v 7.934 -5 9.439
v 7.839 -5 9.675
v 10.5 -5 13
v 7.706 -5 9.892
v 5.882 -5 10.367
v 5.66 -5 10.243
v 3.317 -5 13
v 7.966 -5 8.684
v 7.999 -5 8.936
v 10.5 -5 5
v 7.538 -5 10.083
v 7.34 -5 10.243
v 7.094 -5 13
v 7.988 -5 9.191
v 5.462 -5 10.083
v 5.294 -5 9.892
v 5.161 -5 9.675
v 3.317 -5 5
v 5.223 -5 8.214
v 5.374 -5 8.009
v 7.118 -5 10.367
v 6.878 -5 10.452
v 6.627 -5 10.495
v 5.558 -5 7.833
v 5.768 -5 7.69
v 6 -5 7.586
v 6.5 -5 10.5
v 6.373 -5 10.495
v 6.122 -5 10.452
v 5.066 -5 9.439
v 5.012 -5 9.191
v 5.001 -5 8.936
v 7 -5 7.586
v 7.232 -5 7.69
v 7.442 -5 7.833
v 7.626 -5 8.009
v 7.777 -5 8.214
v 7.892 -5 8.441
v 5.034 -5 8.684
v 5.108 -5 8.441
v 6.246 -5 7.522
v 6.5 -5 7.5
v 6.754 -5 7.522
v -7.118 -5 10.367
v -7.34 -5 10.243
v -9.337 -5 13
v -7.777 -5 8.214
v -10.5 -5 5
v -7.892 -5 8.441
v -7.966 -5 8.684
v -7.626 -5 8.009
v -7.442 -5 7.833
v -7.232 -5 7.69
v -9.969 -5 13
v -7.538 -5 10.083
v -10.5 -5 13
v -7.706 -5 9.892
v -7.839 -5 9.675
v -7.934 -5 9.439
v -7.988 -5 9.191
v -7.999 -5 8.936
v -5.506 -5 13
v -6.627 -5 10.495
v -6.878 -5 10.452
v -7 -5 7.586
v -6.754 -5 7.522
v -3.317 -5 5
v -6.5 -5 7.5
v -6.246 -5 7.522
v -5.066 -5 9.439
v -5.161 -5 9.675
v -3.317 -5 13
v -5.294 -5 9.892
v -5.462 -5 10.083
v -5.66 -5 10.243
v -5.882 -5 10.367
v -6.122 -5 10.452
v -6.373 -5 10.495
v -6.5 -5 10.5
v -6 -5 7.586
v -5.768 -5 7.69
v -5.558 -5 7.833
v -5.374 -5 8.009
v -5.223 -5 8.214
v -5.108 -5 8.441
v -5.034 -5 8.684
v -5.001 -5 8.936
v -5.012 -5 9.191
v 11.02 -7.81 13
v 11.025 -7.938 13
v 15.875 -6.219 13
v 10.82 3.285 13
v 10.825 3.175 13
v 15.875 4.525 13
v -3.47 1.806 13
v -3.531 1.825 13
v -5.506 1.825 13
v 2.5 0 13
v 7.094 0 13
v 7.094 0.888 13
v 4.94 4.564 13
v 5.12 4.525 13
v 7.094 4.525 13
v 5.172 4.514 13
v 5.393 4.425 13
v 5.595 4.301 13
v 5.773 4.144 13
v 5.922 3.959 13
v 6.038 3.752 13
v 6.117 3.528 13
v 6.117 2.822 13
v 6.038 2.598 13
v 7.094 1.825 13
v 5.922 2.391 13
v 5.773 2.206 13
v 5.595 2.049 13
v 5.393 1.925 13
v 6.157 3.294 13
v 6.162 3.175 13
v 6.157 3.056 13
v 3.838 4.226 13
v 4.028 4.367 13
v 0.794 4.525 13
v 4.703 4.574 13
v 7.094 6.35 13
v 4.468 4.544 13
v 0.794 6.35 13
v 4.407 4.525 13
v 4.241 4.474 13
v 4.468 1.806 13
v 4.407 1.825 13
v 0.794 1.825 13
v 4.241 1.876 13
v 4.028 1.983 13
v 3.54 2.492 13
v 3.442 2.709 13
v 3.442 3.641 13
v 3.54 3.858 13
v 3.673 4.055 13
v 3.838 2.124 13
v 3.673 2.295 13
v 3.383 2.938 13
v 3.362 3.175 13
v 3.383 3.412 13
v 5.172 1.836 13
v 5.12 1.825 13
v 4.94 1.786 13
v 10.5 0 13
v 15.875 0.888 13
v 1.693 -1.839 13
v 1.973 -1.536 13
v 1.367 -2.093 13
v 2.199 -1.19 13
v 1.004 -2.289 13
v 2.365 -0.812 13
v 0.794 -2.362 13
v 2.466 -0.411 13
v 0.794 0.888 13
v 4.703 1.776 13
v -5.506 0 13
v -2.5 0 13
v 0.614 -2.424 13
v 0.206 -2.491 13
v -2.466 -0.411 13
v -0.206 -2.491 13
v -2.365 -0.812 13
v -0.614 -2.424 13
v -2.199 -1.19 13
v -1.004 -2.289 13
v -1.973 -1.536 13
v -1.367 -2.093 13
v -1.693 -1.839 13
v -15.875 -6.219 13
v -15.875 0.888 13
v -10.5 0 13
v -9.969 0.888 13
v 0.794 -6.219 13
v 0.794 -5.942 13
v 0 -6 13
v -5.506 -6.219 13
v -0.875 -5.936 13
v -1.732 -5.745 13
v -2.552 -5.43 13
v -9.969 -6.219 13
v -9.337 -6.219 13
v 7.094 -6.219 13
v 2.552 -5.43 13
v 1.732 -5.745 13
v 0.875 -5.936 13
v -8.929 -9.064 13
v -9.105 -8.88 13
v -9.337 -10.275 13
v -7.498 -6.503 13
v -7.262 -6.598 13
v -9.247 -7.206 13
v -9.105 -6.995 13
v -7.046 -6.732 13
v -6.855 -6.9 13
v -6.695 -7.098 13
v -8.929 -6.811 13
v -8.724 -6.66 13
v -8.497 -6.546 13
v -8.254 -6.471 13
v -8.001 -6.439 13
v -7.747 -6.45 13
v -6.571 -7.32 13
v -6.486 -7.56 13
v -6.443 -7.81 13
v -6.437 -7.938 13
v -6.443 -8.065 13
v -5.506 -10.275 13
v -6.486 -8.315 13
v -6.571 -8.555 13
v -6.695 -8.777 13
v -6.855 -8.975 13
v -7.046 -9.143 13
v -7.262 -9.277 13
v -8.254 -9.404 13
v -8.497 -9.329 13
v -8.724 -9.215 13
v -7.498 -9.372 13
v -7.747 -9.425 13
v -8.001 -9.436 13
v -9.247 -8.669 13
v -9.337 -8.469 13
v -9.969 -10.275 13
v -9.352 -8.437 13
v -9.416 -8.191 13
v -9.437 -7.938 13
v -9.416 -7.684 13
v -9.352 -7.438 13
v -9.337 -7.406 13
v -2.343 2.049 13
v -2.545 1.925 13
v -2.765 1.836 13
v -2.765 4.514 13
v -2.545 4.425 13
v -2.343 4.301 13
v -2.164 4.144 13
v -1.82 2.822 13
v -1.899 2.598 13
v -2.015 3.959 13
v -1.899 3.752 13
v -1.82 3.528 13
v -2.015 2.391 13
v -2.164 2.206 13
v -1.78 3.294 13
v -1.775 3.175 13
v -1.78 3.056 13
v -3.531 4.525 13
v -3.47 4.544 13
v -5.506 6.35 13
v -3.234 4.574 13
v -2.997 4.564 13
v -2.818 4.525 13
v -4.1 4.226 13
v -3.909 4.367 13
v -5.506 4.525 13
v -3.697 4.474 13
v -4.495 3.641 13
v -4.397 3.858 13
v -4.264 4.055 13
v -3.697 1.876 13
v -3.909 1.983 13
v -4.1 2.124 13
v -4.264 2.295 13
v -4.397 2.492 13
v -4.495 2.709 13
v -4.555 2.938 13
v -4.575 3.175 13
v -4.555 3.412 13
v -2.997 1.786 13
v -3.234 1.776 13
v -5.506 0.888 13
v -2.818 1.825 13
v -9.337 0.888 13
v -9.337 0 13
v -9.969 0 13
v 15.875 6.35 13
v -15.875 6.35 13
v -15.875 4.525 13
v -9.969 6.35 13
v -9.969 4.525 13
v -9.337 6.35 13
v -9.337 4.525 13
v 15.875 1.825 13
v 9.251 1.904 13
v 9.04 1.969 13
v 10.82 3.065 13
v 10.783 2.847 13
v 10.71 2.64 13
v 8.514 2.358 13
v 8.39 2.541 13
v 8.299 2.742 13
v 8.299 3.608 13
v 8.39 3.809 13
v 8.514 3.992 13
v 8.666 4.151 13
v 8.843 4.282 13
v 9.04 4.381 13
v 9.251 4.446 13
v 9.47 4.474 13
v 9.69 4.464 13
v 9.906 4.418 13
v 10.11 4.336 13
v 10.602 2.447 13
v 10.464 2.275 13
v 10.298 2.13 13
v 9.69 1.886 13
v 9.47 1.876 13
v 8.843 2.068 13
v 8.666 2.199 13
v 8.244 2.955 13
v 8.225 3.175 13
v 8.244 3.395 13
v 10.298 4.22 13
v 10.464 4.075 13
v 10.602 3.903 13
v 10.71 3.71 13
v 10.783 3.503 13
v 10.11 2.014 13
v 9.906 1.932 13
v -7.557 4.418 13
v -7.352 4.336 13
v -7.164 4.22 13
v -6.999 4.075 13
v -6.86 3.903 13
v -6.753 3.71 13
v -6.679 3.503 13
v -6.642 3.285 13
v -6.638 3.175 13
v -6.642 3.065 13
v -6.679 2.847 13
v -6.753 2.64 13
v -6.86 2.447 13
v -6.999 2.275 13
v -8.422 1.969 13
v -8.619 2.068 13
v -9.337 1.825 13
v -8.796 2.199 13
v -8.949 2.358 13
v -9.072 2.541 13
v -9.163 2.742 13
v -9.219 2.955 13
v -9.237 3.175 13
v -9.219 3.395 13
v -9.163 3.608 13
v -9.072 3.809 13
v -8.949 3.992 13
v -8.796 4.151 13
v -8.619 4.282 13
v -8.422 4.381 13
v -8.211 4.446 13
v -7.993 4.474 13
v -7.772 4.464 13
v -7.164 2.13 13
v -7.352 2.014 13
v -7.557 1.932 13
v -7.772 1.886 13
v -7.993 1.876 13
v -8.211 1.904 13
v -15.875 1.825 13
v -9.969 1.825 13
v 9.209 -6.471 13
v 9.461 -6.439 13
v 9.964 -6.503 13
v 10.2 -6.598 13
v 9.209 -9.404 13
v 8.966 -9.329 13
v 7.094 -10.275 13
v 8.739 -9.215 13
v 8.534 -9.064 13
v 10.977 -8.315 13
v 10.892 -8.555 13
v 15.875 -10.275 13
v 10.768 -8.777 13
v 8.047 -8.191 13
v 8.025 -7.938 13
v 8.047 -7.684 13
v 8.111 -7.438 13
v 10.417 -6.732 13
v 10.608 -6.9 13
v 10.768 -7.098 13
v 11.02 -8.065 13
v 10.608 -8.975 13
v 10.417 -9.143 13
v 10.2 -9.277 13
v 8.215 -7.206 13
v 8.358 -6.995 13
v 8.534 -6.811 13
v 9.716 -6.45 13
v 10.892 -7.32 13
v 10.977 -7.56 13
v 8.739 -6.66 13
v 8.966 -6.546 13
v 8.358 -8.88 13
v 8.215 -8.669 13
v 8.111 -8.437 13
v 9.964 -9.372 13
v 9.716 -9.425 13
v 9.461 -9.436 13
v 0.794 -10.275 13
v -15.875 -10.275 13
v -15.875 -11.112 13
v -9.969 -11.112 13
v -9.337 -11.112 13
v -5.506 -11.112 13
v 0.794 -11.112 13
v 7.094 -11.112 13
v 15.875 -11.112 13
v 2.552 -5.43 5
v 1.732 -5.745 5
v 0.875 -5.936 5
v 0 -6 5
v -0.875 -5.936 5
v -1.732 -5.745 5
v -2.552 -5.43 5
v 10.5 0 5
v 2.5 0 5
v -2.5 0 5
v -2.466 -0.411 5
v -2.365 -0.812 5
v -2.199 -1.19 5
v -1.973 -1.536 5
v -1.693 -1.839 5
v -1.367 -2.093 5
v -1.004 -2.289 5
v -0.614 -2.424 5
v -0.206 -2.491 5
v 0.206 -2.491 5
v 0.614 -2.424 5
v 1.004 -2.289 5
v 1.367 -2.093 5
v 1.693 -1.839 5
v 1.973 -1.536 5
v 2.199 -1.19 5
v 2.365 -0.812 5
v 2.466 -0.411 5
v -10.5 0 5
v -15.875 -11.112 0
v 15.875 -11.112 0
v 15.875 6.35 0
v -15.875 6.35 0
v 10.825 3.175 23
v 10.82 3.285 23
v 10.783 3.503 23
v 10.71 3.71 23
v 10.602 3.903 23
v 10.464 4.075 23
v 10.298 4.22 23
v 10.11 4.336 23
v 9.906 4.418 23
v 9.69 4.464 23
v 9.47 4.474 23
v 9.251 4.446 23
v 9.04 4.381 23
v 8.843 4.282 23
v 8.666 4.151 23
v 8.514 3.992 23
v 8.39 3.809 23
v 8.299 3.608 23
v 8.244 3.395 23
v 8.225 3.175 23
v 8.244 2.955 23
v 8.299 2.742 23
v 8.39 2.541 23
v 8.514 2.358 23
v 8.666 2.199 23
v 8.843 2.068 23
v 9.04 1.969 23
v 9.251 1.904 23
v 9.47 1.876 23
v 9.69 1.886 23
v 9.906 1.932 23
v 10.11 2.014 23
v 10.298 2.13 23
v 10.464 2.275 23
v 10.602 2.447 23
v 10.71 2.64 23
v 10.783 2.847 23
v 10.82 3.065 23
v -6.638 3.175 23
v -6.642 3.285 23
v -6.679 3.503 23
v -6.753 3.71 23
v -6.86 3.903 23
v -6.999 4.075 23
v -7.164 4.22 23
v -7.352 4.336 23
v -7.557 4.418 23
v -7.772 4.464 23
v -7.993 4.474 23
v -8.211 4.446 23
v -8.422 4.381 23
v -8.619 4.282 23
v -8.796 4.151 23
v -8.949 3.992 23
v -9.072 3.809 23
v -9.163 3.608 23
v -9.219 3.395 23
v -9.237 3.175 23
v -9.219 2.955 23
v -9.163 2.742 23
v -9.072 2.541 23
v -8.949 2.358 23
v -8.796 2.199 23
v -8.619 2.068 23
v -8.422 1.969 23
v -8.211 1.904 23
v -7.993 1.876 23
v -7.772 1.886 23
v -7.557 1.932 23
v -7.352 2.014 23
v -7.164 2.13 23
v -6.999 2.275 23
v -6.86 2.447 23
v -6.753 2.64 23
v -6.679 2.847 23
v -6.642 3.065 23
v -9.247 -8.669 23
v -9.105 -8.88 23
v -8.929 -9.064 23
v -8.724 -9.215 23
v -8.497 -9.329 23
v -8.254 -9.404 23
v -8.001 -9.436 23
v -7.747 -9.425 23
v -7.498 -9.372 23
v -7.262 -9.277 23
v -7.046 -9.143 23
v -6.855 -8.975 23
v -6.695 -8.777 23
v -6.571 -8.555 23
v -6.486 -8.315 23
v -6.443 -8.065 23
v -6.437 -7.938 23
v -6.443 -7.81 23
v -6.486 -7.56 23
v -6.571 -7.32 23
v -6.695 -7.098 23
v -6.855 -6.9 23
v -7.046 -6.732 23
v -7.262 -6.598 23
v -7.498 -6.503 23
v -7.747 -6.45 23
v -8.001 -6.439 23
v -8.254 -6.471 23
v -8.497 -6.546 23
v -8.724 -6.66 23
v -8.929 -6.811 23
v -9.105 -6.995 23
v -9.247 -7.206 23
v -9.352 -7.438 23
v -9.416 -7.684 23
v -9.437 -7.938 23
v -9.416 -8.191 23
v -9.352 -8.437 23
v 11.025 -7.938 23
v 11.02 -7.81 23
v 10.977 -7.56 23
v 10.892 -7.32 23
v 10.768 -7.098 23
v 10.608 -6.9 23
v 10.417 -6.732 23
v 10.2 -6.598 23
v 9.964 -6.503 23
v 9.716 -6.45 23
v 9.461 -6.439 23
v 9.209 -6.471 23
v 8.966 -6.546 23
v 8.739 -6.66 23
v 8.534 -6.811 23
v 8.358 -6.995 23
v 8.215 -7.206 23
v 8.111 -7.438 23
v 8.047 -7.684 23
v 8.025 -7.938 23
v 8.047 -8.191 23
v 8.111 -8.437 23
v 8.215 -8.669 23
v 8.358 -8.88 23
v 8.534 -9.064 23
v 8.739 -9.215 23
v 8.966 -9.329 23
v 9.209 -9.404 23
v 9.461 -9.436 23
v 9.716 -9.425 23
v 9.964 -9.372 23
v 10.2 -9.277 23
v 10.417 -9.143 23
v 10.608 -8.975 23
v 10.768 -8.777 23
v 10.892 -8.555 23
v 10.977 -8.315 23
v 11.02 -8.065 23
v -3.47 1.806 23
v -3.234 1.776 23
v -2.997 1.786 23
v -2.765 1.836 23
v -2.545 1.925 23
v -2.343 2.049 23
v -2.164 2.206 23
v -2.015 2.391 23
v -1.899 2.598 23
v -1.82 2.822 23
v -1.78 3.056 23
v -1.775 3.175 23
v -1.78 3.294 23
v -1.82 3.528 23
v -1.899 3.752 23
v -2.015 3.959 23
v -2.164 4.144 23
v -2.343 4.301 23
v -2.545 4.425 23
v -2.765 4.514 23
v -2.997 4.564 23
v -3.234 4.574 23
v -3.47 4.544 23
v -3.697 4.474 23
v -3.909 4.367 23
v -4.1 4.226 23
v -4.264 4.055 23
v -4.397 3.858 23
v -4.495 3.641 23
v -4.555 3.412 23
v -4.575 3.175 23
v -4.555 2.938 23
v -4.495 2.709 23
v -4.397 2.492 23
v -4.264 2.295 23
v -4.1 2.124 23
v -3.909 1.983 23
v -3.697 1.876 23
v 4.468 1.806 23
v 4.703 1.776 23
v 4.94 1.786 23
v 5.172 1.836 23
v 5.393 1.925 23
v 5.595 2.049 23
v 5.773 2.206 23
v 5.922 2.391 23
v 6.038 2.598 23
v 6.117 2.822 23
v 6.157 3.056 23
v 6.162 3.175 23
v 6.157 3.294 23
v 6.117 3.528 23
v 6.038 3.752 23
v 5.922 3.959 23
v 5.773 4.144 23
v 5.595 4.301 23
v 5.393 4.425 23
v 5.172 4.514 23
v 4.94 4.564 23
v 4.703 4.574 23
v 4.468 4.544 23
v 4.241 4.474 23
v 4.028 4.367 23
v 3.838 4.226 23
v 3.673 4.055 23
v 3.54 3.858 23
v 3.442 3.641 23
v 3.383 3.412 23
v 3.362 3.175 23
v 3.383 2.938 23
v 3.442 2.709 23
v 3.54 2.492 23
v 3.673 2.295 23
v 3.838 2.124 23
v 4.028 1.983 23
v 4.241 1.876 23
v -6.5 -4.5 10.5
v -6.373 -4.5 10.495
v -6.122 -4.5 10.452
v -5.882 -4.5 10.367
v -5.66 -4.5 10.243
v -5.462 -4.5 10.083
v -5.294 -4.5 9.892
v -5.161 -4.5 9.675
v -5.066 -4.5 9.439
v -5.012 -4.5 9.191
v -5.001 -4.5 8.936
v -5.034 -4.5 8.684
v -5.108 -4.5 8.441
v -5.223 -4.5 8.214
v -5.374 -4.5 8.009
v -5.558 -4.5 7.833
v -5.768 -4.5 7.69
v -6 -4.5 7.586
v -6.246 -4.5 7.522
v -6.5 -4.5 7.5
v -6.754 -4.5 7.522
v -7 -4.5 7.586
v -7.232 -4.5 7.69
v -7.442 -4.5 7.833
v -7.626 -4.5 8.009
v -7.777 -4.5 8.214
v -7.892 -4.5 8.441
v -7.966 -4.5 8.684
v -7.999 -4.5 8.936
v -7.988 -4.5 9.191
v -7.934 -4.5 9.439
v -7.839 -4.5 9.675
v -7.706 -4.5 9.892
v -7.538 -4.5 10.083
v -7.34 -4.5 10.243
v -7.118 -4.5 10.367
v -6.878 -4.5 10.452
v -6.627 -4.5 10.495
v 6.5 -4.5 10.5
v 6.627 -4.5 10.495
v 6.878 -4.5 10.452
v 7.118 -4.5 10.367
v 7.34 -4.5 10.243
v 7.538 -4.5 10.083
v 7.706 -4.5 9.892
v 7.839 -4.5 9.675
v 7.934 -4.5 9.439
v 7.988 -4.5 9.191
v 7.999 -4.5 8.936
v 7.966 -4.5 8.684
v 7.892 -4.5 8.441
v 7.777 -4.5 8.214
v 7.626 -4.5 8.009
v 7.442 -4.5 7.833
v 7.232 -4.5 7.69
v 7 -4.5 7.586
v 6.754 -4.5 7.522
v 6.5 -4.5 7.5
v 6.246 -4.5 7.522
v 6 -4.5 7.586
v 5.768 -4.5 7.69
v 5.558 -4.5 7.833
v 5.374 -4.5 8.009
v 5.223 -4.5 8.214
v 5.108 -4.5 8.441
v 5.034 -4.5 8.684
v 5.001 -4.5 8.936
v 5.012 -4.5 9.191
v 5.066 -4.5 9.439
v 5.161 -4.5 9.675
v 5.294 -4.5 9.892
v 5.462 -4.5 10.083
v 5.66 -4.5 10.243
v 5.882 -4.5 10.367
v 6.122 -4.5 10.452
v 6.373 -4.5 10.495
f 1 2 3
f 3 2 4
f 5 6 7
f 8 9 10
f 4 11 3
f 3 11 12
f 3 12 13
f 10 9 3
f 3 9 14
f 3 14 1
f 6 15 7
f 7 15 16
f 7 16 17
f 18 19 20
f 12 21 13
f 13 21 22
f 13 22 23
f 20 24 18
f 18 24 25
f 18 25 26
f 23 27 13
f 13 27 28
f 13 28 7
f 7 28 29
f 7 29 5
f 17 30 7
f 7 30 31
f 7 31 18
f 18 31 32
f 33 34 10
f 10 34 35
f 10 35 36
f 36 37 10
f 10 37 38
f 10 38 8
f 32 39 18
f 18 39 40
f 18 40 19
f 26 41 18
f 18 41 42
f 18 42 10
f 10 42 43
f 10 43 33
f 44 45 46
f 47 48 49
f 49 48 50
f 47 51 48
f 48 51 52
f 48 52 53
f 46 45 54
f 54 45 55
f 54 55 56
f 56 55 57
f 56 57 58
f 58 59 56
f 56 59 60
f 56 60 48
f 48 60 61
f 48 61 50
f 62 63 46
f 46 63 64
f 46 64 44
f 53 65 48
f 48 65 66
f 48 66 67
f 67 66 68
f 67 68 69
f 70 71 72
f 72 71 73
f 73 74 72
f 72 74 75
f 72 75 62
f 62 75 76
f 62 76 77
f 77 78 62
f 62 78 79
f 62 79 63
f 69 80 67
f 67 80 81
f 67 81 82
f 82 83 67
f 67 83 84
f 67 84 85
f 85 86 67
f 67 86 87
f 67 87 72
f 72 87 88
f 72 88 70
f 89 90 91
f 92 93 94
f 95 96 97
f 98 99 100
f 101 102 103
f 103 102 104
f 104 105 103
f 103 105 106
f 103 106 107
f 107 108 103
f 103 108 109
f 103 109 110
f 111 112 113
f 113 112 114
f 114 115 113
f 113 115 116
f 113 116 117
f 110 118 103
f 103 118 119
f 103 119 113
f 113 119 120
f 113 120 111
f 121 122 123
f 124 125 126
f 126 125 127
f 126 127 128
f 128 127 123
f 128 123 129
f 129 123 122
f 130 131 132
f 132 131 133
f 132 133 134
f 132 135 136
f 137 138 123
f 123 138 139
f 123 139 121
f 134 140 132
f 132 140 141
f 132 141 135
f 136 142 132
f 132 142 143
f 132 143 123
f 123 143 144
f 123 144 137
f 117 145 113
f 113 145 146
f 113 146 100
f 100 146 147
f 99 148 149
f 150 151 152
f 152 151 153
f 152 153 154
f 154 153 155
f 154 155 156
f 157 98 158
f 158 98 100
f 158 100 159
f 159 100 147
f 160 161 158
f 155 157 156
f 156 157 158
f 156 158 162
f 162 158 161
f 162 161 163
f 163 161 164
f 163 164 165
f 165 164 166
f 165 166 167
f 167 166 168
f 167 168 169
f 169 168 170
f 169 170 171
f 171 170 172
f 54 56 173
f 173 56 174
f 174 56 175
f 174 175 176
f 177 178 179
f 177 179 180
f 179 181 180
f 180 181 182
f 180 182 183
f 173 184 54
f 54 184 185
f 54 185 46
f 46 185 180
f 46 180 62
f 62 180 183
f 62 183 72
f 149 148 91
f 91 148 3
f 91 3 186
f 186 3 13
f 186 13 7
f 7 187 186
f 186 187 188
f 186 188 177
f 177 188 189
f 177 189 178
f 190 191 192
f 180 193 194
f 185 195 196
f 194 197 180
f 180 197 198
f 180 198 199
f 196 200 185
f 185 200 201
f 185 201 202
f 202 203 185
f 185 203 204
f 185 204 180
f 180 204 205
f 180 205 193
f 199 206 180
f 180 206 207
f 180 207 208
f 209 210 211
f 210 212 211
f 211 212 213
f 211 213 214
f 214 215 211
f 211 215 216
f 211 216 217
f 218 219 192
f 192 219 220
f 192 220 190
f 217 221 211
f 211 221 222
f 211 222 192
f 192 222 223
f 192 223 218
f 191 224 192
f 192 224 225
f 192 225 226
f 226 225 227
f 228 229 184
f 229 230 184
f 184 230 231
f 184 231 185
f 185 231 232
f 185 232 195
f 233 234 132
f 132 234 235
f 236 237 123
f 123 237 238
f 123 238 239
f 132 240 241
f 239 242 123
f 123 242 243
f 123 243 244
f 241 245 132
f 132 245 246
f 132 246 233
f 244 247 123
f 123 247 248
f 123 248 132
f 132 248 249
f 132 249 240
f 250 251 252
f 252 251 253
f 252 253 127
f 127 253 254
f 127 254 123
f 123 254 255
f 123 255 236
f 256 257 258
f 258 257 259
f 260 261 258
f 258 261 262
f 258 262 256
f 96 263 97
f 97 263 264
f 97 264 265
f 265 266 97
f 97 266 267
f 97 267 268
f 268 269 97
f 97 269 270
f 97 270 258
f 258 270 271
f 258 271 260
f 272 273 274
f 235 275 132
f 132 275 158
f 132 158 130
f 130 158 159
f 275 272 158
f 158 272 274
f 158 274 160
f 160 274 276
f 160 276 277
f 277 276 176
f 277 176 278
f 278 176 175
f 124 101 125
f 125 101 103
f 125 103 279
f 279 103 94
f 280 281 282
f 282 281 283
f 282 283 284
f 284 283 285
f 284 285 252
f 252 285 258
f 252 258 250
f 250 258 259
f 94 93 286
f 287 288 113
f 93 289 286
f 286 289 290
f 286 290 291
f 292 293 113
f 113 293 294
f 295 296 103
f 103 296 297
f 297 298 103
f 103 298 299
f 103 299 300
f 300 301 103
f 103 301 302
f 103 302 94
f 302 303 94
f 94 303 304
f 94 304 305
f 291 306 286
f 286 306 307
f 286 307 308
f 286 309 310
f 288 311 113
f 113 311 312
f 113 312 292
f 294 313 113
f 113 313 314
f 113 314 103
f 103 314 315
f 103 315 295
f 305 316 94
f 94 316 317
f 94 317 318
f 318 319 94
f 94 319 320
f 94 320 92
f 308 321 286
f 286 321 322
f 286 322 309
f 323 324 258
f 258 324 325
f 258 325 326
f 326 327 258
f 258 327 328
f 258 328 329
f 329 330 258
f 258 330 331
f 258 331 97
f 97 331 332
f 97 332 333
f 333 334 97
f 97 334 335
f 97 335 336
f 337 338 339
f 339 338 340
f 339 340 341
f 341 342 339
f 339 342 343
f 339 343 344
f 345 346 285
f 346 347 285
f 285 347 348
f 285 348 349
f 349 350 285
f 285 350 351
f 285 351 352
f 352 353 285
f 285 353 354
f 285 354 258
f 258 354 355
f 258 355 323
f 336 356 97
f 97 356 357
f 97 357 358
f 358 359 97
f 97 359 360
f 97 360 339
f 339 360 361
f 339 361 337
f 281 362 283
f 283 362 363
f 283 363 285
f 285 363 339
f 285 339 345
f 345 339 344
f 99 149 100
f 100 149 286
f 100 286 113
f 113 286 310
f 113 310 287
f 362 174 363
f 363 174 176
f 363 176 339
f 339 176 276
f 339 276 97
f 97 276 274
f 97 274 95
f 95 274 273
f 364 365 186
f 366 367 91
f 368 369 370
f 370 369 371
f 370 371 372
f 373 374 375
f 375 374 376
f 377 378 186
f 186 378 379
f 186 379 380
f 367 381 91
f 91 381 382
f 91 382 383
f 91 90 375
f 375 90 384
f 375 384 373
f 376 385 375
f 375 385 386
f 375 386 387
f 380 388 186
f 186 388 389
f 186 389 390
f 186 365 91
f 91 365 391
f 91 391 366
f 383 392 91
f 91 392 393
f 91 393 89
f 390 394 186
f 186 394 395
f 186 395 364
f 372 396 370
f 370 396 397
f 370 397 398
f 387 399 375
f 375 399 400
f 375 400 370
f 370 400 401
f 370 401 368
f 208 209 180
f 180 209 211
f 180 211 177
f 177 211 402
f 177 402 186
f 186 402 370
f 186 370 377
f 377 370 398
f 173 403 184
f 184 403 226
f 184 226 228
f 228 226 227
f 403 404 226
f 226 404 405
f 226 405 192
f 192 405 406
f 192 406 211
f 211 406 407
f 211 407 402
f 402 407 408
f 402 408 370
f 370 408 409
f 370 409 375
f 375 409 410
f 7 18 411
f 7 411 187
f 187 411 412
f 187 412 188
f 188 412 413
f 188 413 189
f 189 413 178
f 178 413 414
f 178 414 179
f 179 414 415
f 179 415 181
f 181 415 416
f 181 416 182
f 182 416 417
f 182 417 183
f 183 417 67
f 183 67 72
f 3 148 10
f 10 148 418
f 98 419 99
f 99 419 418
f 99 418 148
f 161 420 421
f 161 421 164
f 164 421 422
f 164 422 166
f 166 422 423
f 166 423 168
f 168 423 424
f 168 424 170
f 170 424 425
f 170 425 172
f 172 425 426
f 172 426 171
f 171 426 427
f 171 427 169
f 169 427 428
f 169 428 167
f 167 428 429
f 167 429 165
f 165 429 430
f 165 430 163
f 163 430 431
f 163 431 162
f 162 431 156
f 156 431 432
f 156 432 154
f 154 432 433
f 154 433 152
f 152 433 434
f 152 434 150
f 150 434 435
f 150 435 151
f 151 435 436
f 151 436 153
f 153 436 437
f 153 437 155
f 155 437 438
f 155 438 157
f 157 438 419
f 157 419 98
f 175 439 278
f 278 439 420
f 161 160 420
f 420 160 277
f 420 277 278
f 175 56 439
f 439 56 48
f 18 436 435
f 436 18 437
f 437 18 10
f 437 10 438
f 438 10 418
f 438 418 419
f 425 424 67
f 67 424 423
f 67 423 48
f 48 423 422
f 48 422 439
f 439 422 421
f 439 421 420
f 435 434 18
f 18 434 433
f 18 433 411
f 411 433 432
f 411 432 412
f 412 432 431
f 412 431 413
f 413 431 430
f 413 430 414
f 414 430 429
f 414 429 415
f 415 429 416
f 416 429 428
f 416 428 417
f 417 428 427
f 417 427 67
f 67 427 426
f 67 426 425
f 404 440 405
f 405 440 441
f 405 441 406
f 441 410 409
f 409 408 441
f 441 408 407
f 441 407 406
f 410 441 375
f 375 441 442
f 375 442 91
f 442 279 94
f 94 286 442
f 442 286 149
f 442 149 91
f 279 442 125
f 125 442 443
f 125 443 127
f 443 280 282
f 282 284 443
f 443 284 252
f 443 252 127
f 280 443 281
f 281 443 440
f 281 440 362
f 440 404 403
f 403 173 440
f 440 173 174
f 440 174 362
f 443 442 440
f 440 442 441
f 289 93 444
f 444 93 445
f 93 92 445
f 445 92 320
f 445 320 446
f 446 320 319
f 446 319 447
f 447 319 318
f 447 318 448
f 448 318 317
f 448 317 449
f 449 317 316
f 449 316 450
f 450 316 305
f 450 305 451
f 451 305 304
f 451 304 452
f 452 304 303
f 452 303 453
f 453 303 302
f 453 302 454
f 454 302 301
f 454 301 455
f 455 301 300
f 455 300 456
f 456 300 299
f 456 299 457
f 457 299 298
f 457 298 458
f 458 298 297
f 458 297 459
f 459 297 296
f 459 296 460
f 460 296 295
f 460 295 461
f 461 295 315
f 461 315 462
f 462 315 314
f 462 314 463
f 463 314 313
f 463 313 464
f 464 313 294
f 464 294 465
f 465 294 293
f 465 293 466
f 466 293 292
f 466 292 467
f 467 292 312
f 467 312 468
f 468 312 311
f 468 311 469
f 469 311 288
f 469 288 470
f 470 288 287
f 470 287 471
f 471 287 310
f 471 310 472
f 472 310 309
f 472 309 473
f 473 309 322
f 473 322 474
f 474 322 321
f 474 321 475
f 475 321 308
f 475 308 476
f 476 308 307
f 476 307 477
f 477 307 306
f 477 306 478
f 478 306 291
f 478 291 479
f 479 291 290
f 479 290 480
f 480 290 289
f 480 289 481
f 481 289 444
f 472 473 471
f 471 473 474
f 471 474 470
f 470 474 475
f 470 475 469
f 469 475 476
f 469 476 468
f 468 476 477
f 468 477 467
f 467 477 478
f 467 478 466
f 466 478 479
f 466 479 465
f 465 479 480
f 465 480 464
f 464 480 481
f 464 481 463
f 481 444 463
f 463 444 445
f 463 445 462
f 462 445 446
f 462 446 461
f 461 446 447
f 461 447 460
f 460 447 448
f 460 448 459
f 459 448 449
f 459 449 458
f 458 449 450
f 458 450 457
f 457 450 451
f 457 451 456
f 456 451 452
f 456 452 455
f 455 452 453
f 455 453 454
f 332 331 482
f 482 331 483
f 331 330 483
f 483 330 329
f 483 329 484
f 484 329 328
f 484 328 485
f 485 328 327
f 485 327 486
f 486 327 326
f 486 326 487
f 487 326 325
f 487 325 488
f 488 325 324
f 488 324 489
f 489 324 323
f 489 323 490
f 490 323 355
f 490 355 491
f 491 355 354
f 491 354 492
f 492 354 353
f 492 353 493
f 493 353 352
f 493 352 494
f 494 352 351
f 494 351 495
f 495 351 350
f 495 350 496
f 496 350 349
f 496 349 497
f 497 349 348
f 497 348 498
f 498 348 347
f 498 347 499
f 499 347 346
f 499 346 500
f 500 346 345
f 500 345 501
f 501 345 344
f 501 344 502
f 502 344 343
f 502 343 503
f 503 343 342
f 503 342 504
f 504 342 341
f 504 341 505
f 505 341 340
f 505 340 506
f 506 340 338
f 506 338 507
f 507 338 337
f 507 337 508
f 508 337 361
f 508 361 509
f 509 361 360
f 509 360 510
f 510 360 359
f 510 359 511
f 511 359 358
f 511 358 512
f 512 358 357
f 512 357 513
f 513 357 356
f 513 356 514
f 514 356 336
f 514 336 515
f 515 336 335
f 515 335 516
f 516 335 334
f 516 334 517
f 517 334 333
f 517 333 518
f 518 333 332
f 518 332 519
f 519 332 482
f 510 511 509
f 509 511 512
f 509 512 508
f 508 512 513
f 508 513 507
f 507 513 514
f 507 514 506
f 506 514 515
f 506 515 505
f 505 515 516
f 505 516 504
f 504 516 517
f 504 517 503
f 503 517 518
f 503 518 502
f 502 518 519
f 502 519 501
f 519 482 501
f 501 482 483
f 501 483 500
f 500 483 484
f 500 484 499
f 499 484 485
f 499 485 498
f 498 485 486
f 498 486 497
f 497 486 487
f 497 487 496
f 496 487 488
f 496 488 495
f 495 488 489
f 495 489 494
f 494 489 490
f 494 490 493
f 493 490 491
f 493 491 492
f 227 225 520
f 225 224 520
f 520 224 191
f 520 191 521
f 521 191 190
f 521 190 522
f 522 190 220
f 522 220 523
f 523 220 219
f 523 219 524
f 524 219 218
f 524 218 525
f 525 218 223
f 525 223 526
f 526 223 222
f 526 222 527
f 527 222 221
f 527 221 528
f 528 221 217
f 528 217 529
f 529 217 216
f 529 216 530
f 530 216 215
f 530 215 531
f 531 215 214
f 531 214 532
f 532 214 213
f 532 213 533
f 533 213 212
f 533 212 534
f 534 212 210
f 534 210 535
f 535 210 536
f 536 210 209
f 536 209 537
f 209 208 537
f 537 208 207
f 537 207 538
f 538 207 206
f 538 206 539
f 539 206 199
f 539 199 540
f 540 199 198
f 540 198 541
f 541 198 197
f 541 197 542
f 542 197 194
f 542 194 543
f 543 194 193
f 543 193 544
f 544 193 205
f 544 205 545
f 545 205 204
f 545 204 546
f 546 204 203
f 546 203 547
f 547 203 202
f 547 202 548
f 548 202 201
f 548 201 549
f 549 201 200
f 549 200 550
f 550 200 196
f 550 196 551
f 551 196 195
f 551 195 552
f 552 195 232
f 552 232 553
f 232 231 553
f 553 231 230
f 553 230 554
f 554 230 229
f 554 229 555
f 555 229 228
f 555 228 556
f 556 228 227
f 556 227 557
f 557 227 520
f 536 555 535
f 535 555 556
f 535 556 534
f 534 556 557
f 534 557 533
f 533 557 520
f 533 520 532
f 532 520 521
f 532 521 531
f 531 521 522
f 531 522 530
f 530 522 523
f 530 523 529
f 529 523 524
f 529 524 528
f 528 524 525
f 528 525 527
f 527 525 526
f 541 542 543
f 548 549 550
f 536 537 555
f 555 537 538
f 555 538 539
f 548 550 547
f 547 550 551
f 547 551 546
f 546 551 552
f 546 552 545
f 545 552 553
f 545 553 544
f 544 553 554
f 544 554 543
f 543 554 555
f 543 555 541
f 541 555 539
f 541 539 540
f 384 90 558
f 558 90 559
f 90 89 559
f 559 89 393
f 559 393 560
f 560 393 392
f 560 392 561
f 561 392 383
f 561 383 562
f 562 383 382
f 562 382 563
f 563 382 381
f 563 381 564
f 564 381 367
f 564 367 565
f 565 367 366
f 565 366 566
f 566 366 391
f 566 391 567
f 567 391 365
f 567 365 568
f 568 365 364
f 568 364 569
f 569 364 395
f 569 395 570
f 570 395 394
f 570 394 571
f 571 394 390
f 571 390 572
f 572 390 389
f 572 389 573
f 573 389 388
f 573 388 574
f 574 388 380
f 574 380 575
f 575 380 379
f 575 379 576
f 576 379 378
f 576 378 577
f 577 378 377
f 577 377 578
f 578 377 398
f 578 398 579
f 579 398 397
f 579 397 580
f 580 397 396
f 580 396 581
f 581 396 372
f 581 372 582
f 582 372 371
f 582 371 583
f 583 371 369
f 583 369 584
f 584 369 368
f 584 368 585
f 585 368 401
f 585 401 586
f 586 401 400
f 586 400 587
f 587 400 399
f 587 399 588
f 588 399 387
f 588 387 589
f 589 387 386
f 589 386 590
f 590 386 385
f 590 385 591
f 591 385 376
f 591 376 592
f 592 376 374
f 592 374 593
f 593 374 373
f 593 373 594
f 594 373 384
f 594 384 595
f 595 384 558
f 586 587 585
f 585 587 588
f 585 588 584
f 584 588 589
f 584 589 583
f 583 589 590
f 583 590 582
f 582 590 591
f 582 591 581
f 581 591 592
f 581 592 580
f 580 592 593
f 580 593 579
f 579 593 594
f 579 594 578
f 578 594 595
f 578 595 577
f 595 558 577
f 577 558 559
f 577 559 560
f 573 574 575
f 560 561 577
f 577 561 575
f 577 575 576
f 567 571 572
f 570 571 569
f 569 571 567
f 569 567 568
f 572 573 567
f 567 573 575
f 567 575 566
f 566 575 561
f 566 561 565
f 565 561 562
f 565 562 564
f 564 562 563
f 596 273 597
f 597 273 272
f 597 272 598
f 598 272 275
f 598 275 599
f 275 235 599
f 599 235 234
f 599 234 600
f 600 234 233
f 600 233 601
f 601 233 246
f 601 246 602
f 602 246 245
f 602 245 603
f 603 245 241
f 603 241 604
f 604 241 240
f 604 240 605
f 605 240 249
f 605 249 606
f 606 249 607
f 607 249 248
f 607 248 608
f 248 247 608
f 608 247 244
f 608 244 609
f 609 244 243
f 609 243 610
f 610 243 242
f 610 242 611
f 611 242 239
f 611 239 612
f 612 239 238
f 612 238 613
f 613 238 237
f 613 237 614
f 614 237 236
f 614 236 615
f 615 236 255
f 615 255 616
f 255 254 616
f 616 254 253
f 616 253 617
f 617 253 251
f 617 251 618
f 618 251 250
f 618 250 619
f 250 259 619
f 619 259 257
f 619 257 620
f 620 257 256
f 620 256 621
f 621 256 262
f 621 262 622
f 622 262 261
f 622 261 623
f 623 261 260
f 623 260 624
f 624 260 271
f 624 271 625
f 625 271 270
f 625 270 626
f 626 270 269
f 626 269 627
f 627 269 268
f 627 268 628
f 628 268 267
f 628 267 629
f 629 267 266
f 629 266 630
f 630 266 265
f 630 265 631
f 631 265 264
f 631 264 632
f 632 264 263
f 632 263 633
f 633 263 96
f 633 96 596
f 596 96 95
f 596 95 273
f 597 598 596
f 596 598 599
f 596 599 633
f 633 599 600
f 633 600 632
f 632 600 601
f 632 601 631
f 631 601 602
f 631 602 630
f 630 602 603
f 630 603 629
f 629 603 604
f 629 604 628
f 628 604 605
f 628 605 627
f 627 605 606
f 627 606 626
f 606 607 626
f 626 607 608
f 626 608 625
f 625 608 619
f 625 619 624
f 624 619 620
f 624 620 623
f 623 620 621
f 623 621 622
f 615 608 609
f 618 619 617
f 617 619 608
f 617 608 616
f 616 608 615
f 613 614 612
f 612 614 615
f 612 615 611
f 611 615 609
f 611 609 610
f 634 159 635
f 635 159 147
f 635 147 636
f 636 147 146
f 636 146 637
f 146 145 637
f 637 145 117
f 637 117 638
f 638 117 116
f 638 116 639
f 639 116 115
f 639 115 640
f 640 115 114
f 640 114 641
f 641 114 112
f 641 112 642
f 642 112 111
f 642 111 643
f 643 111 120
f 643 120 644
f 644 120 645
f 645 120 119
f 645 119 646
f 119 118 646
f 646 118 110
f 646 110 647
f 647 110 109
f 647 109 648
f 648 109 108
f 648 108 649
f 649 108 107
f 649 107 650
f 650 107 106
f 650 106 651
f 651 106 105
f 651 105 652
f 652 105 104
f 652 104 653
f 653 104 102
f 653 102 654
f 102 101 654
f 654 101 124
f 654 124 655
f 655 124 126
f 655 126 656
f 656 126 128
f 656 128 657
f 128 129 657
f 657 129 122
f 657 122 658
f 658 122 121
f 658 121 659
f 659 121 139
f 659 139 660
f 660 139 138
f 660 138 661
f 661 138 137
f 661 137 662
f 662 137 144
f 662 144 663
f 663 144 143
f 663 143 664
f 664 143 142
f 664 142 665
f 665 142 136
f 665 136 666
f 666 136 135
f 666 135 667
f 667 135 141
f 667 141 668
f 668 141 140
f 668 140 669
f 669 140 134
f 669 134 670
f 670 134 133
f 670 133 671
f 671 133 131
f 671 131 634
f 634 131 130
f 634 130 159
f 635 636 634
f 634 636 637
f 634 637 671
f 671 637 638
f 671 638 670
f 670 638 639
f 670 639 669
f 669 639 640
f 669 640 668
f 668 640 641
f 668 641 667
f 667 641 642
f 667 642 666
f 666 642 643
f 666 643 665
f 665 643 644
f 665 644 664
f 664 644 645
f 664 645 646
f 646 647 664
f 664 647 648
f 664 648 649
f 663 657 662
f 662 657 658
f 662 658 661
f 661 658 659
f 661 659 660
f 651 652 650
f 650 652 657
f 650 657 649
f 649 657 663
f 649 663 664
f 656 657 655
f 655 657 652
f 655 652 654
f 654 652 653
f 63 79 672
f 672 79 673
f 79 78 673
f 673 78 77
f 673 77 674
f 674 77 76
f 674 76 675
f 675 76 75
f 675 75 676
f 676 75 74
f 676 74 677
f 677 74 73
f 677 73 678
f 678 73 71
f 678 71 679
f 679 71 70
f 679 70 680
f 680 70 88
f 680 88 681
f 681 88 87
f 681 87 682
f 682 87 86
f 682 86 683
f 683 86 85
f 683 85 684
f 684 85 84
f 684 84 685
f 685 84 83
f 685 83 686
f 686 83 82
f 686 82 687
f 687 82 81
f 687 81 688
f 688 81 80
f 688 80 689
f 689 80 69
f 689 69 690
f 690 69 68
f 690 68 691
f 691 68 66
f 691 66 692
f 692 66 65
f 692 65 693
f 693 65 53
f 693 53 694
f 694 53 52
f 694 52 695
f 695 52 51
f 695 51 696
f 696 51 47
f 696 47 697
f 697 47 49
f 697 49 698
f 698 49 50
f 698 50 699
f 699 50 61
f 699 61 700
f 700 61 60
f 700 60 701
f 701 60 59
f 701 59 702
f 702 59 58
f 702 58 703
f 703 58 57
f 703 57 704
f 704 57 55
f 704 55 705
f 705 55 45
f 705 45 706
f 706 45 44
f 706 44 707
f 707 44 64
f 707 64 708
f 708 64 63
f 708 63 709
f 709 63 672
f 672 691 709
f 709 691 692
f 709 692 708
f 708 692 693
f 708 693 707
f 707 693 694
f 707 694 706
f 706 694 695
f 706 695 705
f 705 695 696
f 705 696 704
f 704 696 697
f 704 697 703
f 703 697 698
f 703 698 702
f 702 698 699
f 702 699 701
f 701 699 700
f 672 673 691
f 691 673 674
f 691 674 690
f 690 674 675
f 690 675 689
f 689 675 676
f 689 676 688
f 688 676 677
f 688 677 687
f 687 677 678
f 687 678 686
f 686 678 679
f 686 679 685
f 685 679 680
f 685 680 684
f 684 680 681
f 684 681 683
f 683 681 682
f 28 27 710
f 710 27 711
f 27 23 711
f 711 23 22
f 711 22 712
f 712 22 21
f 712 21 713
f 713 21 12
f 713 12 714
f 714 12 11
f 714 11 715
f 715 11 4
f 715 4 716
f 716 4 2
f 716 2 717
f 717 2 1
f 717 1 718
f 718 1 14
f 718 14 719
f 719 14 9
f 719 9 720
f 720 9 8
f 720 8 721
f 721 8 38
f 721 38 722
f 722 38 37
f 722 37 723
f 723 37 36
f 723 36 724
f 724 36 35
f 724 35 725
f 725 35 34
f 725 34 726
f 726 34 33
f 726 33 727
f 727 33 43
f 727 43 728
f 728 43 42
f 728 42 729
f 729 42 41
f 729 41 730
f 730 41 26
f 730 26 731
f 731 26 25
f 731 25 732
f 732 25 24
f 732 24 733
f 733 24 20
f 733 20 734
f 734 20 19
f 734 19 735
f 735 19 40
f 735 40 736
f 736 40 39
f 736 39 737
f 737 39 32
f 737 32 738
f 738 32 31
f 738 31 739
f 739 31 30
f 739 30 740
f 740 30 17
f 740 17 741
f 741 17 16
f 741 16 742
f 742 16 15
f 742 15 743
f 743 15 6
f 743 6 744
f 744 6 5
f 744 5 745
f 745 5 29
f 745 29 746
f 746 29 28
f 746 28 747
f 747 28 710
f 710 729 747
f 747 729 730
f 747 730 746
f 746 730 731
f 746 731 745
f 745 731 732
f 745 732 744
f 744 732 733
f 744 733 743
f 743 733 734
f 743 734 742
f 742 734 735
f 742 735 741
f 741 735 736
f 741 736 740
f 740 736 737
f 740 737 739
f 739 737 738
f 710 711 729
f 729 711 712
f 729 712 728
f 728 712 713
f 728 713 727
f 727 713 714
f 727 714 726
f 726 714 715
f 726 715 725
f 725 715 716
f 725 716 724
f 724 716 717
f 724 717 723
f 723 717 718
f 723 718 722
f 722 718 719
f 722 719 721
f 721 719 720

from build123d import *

# Parameters (mm, degrees)
SKETCH1_R      = 24
EXTRUDE1_DEPTH = 5
SKETCH2_R      = 24
EXTRUDE2_DEPTH = 8
SKETCH9_R      = 24
SKETCH9_W      = 31.75
SKETCH9_H      = 17.4625
EXTRUDE4_DEPTH = 13
SKETCH10_R     = 1.3
SKETCH10_R_2   = 1.5
SKETCH10_R_3   = 1.4
EXTRUDE5_DEPTH = 10
SKETCH11_R     = 1.5
EXTRUDE6_DEPTH = 0.5


with BuildPart() as part:
    # Sketch1 → Extrude1 (new body)
    with BuildSketch(Plane.XY):
        Circle(SKETCH1_R)
    extrude(amount=EXTRUDE1_DEPTH)

    # Sketch2 → Extrude2 (add)
    with BuildSketch(Plane.XY.offset(5)):
        Circle(SKETCH2_R)
        with BuildLine():
            Line((-2.5, 0), (-10.5, 0))
            Line((-10.5, 0), (-10.5, -5))
            Line((-10.5, -5), (-3.31662479, -5))
            ThreePointArc((-3.31662479, -5), (0, -6), (3.31662479, -5))
            Line((3.31662479, -5), (10.5, -5))
            Line((10.5, -5), (10.5, 0))
            Line((10.5, 0), (2.5, 0))
            ThreePointArc((2.5, 0), (0, -2.5), (-2.5, 0))
        make_face(mode=Mode.SUBTRACT)
    extrude(amount=EXTRUDE2_DEPTH)

    # Sketch9 → Extrude4 (cut)
    with BuildSketch(Plane.XY.offset(13)):
        Circle(SKETCH9_R)
        with Locations((0, -2.38125)):
            Rectangle(SKETCH9_W, SKETCH9_H, mode=Mode.SUBTRACT)
    extrude(amount=-EXTRUDE4_DEPTH, mode=Mode.SUBTRACT)

    # Sketch10 → Extrude5 (add)
    with BuildSketch(Plane.XY.offset(13)):
        with Locations((9.525, 3.175)):
            Circle(SKETCH10_R)
        with Locations((-7.9375, 3.175)):
            Circle(SKETCH10_R)
        with Locations((-7.9375, -7.9375)):
            Circle(SKETCH10_R_2)
        with Locations((9.525, -7.9375)):
            Circle(SKETCH10_R_2)
        with Locations((-3.175, 3.175)):
            Circle(SKETCH10_R_3)
        with Locations((4.7625, 3.175)):
            Circle(SKETCH10_R_3)
    extrude(amount=EXTRUDE5_DEPTH)

    # Sketch11 → Extrude6 (add)
    with BuildSketch(Plane(origin=(0, -5, 0), x_dir=(1, 0, 0), z_dir=(0, 1, 0))):
        with Locations((-6.5, -9)):
            Circle(SKETCH11_R)
        with Locations((6.5, -9)):
            Circle(SKETCH11_R)
    extrude(amount=EXTRUDE6_DEPTH)


solid = part.part
